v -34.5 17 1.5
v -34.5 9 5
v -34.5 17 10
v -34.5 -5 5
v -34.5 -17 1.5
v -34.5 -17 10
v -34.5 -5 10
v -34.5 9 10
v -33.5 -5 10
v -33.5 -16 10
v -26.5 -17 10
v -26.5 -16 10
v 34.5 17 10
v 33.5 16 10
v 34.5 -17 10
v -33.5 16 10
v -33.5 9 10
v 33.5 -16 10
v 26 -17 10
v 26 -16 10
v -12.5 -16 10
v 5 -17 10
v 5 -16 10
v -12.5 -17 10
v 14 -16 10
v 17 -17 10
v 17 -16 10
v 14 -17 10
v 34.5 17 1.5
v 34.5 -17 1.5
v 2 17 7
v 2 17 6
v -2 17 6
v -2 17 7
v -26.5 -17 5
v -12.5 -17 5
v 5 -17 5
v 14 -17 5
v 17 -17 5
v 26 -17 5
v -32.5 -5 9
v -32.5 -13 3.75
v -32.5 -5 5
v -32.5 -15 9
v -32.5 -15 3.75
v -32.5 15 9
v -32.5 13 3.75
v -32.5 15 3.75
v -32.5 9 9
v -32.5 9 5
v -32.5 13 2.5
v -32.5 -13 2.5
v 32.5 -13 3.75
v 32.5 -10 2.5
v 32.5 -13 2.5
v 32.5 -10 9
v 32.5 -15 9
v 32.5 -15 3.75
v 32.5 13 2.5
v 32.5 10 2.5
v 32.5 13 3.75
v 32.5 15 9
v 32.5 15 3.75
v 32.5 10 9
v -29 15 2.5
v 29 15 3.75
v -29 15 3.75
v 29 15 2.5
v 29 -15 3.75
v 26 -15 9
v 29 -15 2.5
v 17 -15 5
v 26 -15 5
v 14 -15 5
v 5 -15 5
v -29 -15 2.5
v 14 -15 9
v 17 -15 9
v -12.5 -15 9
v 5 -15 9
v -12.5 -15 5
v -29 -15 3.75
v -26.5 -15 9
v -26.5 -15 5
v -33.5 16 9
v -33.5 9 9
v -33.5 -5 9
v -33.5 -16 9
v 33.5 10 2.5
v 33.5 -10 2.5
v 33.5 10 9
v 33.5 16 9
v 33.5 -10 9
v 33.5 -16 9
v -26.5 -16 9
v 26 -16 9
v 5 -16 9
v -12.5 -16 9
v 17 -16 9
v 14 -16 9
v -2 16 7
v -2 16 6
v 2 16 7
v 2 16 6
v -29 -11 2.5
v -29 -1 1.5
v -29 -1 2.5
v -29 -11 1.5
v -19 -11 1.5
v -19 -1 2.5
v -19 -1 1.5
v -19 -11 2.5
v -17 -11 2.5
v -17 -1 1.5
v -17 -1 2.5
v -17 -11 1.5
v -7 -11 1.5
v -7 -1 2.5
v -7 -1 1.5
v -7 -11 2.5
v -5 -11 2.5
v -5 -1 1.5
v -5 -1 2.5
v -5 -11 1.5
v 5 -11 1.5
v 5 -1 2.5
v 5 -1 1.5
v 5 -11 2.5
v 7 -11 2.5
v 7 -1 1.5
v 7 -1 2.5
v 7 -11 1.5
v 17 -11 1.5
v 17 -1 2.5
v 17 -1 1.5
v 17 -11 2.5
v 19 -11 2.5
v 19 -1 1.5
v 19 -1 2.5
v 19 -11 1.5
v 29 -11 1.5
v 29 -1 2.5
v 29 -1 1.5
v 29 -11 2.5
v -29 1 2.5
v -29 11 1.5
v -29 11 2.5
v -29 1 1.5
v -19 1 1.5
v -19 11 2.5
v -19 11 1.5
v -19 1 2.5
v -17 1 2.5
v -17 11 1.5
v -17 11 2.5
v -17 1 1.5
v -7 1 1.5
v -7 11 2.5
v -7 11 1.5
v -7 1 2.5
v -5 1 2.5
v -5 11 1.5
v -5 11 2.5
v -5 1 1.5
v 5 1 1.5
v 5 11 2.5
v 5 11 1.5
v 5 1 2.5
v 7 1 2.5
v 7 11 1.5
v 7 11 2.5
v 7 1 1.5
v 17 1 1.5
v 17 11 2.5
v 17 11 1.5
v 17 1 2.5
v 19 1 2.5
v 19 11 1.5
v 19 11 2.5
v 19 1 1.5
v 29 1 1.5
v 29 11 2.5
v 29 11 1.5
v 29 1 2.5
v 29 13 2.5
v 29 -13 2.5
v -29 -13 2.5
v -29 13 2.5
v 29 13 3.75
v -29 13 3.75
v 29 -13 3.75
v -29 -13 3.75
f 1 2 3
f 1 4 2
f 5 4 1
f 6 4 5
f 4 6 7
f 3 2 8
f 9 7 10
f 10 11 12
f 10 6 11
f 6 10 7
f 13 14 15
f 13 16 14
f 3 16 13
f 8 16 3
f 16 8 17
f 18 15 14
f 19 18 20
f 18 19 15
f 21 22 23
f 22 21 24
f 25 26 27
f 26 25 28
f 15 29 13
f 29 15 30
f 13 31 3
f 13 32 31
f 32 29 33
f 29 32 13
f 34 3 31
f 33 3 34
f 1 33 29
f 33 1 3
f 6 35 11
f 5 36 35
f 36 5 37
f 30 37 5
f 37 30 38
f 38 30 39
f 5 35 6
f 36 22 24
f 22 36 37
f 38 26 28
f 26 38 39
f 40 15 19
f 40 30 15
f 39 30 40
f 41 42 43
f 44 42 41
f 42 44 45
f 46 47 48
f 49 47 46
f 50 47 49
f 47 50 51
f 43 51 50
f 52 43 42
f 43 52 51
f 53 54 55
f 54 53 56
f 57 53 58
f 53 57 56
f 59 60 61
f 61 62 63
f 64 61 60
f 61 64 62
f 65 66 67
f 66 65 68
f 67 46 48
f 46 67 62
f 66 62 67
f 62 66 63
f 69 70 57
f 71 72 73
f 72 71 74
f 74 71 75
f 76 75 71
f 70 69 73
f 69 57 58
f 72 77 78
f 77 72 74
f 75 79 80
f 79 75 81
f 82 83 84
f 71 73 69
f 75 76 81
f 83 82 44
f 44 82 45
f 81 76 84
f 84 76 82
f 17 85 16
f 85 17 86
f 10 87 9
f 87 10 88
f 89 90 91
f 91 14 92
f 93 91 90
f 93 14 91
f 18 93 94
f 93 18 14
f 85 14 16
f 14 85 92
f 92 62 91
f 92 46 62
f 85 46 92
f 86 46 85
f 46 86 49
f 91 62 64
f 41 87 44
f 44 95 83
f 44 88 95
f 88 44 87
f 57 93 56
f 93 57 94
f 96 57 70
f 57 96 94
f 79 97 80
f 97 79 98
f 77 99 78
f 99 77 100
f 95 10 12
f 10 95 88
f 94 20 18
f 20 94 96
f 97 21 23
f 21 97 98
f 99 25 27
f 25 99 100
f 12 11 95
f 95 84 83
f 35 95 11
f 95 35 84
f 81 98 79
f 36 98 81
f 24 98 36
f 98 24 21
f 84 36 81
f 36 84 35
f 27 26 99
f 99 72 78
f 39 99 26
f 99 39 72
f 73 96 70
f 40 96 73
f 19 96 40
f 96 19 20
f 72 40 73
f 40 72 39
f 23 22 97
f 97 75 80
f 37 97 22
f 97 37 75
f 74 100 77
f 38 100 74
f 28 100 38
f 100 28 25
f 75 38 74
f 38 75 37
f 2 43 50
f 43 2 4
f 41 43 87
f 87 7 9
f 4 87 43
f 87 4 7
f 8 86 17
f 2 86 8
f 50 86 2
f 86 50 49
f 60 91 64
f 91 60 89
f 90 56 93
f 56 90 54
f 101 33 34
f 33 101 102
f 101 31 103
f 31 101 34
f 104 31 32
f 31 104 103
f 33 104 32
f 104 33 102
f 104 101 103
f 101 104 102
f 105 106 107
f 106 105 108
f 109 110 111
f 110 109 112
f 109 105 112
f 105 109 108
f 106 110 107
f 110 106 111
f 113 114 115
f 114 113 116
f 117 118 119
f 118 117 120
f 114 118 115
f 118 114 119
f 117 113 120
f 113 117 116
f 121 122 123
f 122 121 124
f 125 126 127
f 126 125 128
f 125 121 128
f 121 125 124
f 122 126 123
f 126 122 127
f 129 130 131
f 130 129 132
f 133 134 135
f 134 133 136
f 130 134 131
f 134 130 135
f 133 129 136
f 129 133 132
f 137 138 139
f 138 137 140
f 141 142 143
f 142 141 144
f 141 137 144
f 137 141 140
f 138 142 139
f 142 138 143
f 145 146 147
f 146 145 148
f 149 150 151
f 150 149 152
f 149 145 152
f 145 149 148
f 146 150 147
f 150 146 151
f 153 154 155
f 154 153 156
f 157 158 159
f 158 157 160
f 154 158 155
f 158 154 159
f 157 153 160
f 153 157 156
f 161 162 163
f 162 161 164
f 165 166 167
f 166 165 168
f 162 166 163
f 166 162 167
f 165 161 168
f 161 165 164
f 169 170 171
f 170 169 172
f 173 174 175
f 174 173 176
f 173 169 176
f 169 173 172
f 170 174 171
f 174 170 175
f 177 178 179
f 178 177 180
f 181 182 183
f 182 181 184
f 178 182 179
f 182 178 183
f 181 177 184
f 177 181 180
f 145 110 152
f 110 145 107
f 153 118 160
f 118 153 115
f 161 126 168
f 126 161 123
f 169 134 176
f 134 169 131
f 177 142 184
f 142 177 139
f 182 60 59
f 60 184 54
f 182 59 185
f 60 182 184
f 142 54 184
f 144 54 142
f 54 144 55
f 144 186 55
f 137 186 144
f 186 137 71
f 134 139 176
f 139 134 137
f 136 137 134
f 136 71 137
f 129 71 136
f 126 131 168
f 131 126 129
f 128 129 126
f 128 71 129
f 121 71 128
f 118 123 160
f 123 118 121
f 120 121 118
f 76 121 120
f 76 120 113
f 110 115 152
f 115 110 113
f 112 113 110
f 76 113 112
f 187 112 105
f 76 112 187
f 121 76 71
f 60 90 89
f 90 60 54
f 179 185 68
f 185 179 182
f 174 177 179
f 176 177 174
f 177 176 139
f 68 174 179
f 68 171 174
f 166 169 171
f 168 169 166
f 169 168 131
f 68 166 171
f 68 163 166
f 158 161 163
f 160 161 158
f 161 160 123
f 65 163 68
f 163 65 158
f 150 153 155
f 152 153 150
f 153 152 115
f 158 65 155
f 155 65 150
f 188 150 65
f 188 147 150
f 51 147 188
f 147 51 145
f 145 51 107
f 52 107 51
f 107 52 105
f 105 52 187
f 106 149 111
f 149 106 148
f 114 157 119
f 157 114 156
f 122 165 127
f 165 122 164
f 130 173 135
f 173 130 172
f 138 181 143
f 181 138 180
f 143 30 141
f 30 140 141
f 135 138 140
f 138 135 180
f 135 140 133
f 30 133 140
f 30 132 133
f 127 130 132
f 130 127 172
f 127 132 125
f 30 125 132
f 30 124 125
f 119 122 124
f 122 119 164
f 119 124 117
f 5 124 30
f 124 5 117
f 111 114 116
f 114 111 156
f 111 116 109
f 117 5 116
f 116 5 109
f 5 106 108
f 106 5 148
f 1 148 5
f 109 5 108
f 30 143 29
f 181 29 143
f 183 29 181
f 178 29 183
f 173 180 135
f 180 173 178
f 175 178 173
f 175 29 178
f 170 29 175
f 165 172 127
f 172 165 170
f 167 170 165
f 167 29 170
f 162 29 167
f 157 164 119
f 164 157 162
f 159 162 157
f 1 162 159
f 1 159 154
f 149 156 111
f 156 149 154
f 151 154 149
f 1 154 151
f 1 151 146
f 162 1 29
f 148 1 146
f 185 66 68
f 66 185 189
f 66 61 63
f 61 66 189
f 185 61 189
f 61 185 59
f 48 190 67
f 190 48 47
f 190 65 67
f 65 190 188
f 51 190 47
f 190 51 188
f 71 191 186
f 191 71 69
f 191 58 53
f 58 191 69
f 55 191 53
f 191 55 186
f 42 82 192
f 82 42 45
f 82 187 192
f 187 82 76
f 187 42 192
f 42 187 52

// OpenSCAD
//Bottom
translate([0,0,2]) 
{
    //Drill holes at the bottom
    difference()
    {
        cube([69,34,1], true);
        for (y=[-6:12:6])
        {
            for (x=[-24:12:24])
            {
                translate([x,y,0])
                    cube([10,10,2], true);
            }
        }
    }
}

//Sides
translate([0,0,6]) 
{
    difference()
    {
        cube([69,34,8], true);
        cube([65,30,8], true);
        //Еdge
        translate([0,0,4])
            cube([67,32,2], true);
        //Place for the miniHDMI
        translate([-19.5,-15,4])
            cube([14,32,10], true);
        //Place for the 1st microUSB
        translate([21.5,-15,4])
            cube([9,32,10], true);
        //Place for the 2st microUSB
        translate([9.5,-15,4])
            cube([9,32,10], true);
        //microSD card
        translate([-33.5,2,4])
            cube([2,14,10], true);
        //Leave space for the camera
        translate([33,0,1])
            cube([1,20,10], true);

        //Placeholder for the hanger of the top of the case
        translate([0,16.5,0.5])
            cube([4,1,1], true);
    }
}

//Holders
translate([31,14,3])
    cube([4,2,1.5], true);
translate([-31,14,3])
    cube([4,2,1.5], true);

translate([31,-14,3])
    cube([4,2,1.5], true);
translate([-31,-14,3])
    cube([4,2,1.5], true);
